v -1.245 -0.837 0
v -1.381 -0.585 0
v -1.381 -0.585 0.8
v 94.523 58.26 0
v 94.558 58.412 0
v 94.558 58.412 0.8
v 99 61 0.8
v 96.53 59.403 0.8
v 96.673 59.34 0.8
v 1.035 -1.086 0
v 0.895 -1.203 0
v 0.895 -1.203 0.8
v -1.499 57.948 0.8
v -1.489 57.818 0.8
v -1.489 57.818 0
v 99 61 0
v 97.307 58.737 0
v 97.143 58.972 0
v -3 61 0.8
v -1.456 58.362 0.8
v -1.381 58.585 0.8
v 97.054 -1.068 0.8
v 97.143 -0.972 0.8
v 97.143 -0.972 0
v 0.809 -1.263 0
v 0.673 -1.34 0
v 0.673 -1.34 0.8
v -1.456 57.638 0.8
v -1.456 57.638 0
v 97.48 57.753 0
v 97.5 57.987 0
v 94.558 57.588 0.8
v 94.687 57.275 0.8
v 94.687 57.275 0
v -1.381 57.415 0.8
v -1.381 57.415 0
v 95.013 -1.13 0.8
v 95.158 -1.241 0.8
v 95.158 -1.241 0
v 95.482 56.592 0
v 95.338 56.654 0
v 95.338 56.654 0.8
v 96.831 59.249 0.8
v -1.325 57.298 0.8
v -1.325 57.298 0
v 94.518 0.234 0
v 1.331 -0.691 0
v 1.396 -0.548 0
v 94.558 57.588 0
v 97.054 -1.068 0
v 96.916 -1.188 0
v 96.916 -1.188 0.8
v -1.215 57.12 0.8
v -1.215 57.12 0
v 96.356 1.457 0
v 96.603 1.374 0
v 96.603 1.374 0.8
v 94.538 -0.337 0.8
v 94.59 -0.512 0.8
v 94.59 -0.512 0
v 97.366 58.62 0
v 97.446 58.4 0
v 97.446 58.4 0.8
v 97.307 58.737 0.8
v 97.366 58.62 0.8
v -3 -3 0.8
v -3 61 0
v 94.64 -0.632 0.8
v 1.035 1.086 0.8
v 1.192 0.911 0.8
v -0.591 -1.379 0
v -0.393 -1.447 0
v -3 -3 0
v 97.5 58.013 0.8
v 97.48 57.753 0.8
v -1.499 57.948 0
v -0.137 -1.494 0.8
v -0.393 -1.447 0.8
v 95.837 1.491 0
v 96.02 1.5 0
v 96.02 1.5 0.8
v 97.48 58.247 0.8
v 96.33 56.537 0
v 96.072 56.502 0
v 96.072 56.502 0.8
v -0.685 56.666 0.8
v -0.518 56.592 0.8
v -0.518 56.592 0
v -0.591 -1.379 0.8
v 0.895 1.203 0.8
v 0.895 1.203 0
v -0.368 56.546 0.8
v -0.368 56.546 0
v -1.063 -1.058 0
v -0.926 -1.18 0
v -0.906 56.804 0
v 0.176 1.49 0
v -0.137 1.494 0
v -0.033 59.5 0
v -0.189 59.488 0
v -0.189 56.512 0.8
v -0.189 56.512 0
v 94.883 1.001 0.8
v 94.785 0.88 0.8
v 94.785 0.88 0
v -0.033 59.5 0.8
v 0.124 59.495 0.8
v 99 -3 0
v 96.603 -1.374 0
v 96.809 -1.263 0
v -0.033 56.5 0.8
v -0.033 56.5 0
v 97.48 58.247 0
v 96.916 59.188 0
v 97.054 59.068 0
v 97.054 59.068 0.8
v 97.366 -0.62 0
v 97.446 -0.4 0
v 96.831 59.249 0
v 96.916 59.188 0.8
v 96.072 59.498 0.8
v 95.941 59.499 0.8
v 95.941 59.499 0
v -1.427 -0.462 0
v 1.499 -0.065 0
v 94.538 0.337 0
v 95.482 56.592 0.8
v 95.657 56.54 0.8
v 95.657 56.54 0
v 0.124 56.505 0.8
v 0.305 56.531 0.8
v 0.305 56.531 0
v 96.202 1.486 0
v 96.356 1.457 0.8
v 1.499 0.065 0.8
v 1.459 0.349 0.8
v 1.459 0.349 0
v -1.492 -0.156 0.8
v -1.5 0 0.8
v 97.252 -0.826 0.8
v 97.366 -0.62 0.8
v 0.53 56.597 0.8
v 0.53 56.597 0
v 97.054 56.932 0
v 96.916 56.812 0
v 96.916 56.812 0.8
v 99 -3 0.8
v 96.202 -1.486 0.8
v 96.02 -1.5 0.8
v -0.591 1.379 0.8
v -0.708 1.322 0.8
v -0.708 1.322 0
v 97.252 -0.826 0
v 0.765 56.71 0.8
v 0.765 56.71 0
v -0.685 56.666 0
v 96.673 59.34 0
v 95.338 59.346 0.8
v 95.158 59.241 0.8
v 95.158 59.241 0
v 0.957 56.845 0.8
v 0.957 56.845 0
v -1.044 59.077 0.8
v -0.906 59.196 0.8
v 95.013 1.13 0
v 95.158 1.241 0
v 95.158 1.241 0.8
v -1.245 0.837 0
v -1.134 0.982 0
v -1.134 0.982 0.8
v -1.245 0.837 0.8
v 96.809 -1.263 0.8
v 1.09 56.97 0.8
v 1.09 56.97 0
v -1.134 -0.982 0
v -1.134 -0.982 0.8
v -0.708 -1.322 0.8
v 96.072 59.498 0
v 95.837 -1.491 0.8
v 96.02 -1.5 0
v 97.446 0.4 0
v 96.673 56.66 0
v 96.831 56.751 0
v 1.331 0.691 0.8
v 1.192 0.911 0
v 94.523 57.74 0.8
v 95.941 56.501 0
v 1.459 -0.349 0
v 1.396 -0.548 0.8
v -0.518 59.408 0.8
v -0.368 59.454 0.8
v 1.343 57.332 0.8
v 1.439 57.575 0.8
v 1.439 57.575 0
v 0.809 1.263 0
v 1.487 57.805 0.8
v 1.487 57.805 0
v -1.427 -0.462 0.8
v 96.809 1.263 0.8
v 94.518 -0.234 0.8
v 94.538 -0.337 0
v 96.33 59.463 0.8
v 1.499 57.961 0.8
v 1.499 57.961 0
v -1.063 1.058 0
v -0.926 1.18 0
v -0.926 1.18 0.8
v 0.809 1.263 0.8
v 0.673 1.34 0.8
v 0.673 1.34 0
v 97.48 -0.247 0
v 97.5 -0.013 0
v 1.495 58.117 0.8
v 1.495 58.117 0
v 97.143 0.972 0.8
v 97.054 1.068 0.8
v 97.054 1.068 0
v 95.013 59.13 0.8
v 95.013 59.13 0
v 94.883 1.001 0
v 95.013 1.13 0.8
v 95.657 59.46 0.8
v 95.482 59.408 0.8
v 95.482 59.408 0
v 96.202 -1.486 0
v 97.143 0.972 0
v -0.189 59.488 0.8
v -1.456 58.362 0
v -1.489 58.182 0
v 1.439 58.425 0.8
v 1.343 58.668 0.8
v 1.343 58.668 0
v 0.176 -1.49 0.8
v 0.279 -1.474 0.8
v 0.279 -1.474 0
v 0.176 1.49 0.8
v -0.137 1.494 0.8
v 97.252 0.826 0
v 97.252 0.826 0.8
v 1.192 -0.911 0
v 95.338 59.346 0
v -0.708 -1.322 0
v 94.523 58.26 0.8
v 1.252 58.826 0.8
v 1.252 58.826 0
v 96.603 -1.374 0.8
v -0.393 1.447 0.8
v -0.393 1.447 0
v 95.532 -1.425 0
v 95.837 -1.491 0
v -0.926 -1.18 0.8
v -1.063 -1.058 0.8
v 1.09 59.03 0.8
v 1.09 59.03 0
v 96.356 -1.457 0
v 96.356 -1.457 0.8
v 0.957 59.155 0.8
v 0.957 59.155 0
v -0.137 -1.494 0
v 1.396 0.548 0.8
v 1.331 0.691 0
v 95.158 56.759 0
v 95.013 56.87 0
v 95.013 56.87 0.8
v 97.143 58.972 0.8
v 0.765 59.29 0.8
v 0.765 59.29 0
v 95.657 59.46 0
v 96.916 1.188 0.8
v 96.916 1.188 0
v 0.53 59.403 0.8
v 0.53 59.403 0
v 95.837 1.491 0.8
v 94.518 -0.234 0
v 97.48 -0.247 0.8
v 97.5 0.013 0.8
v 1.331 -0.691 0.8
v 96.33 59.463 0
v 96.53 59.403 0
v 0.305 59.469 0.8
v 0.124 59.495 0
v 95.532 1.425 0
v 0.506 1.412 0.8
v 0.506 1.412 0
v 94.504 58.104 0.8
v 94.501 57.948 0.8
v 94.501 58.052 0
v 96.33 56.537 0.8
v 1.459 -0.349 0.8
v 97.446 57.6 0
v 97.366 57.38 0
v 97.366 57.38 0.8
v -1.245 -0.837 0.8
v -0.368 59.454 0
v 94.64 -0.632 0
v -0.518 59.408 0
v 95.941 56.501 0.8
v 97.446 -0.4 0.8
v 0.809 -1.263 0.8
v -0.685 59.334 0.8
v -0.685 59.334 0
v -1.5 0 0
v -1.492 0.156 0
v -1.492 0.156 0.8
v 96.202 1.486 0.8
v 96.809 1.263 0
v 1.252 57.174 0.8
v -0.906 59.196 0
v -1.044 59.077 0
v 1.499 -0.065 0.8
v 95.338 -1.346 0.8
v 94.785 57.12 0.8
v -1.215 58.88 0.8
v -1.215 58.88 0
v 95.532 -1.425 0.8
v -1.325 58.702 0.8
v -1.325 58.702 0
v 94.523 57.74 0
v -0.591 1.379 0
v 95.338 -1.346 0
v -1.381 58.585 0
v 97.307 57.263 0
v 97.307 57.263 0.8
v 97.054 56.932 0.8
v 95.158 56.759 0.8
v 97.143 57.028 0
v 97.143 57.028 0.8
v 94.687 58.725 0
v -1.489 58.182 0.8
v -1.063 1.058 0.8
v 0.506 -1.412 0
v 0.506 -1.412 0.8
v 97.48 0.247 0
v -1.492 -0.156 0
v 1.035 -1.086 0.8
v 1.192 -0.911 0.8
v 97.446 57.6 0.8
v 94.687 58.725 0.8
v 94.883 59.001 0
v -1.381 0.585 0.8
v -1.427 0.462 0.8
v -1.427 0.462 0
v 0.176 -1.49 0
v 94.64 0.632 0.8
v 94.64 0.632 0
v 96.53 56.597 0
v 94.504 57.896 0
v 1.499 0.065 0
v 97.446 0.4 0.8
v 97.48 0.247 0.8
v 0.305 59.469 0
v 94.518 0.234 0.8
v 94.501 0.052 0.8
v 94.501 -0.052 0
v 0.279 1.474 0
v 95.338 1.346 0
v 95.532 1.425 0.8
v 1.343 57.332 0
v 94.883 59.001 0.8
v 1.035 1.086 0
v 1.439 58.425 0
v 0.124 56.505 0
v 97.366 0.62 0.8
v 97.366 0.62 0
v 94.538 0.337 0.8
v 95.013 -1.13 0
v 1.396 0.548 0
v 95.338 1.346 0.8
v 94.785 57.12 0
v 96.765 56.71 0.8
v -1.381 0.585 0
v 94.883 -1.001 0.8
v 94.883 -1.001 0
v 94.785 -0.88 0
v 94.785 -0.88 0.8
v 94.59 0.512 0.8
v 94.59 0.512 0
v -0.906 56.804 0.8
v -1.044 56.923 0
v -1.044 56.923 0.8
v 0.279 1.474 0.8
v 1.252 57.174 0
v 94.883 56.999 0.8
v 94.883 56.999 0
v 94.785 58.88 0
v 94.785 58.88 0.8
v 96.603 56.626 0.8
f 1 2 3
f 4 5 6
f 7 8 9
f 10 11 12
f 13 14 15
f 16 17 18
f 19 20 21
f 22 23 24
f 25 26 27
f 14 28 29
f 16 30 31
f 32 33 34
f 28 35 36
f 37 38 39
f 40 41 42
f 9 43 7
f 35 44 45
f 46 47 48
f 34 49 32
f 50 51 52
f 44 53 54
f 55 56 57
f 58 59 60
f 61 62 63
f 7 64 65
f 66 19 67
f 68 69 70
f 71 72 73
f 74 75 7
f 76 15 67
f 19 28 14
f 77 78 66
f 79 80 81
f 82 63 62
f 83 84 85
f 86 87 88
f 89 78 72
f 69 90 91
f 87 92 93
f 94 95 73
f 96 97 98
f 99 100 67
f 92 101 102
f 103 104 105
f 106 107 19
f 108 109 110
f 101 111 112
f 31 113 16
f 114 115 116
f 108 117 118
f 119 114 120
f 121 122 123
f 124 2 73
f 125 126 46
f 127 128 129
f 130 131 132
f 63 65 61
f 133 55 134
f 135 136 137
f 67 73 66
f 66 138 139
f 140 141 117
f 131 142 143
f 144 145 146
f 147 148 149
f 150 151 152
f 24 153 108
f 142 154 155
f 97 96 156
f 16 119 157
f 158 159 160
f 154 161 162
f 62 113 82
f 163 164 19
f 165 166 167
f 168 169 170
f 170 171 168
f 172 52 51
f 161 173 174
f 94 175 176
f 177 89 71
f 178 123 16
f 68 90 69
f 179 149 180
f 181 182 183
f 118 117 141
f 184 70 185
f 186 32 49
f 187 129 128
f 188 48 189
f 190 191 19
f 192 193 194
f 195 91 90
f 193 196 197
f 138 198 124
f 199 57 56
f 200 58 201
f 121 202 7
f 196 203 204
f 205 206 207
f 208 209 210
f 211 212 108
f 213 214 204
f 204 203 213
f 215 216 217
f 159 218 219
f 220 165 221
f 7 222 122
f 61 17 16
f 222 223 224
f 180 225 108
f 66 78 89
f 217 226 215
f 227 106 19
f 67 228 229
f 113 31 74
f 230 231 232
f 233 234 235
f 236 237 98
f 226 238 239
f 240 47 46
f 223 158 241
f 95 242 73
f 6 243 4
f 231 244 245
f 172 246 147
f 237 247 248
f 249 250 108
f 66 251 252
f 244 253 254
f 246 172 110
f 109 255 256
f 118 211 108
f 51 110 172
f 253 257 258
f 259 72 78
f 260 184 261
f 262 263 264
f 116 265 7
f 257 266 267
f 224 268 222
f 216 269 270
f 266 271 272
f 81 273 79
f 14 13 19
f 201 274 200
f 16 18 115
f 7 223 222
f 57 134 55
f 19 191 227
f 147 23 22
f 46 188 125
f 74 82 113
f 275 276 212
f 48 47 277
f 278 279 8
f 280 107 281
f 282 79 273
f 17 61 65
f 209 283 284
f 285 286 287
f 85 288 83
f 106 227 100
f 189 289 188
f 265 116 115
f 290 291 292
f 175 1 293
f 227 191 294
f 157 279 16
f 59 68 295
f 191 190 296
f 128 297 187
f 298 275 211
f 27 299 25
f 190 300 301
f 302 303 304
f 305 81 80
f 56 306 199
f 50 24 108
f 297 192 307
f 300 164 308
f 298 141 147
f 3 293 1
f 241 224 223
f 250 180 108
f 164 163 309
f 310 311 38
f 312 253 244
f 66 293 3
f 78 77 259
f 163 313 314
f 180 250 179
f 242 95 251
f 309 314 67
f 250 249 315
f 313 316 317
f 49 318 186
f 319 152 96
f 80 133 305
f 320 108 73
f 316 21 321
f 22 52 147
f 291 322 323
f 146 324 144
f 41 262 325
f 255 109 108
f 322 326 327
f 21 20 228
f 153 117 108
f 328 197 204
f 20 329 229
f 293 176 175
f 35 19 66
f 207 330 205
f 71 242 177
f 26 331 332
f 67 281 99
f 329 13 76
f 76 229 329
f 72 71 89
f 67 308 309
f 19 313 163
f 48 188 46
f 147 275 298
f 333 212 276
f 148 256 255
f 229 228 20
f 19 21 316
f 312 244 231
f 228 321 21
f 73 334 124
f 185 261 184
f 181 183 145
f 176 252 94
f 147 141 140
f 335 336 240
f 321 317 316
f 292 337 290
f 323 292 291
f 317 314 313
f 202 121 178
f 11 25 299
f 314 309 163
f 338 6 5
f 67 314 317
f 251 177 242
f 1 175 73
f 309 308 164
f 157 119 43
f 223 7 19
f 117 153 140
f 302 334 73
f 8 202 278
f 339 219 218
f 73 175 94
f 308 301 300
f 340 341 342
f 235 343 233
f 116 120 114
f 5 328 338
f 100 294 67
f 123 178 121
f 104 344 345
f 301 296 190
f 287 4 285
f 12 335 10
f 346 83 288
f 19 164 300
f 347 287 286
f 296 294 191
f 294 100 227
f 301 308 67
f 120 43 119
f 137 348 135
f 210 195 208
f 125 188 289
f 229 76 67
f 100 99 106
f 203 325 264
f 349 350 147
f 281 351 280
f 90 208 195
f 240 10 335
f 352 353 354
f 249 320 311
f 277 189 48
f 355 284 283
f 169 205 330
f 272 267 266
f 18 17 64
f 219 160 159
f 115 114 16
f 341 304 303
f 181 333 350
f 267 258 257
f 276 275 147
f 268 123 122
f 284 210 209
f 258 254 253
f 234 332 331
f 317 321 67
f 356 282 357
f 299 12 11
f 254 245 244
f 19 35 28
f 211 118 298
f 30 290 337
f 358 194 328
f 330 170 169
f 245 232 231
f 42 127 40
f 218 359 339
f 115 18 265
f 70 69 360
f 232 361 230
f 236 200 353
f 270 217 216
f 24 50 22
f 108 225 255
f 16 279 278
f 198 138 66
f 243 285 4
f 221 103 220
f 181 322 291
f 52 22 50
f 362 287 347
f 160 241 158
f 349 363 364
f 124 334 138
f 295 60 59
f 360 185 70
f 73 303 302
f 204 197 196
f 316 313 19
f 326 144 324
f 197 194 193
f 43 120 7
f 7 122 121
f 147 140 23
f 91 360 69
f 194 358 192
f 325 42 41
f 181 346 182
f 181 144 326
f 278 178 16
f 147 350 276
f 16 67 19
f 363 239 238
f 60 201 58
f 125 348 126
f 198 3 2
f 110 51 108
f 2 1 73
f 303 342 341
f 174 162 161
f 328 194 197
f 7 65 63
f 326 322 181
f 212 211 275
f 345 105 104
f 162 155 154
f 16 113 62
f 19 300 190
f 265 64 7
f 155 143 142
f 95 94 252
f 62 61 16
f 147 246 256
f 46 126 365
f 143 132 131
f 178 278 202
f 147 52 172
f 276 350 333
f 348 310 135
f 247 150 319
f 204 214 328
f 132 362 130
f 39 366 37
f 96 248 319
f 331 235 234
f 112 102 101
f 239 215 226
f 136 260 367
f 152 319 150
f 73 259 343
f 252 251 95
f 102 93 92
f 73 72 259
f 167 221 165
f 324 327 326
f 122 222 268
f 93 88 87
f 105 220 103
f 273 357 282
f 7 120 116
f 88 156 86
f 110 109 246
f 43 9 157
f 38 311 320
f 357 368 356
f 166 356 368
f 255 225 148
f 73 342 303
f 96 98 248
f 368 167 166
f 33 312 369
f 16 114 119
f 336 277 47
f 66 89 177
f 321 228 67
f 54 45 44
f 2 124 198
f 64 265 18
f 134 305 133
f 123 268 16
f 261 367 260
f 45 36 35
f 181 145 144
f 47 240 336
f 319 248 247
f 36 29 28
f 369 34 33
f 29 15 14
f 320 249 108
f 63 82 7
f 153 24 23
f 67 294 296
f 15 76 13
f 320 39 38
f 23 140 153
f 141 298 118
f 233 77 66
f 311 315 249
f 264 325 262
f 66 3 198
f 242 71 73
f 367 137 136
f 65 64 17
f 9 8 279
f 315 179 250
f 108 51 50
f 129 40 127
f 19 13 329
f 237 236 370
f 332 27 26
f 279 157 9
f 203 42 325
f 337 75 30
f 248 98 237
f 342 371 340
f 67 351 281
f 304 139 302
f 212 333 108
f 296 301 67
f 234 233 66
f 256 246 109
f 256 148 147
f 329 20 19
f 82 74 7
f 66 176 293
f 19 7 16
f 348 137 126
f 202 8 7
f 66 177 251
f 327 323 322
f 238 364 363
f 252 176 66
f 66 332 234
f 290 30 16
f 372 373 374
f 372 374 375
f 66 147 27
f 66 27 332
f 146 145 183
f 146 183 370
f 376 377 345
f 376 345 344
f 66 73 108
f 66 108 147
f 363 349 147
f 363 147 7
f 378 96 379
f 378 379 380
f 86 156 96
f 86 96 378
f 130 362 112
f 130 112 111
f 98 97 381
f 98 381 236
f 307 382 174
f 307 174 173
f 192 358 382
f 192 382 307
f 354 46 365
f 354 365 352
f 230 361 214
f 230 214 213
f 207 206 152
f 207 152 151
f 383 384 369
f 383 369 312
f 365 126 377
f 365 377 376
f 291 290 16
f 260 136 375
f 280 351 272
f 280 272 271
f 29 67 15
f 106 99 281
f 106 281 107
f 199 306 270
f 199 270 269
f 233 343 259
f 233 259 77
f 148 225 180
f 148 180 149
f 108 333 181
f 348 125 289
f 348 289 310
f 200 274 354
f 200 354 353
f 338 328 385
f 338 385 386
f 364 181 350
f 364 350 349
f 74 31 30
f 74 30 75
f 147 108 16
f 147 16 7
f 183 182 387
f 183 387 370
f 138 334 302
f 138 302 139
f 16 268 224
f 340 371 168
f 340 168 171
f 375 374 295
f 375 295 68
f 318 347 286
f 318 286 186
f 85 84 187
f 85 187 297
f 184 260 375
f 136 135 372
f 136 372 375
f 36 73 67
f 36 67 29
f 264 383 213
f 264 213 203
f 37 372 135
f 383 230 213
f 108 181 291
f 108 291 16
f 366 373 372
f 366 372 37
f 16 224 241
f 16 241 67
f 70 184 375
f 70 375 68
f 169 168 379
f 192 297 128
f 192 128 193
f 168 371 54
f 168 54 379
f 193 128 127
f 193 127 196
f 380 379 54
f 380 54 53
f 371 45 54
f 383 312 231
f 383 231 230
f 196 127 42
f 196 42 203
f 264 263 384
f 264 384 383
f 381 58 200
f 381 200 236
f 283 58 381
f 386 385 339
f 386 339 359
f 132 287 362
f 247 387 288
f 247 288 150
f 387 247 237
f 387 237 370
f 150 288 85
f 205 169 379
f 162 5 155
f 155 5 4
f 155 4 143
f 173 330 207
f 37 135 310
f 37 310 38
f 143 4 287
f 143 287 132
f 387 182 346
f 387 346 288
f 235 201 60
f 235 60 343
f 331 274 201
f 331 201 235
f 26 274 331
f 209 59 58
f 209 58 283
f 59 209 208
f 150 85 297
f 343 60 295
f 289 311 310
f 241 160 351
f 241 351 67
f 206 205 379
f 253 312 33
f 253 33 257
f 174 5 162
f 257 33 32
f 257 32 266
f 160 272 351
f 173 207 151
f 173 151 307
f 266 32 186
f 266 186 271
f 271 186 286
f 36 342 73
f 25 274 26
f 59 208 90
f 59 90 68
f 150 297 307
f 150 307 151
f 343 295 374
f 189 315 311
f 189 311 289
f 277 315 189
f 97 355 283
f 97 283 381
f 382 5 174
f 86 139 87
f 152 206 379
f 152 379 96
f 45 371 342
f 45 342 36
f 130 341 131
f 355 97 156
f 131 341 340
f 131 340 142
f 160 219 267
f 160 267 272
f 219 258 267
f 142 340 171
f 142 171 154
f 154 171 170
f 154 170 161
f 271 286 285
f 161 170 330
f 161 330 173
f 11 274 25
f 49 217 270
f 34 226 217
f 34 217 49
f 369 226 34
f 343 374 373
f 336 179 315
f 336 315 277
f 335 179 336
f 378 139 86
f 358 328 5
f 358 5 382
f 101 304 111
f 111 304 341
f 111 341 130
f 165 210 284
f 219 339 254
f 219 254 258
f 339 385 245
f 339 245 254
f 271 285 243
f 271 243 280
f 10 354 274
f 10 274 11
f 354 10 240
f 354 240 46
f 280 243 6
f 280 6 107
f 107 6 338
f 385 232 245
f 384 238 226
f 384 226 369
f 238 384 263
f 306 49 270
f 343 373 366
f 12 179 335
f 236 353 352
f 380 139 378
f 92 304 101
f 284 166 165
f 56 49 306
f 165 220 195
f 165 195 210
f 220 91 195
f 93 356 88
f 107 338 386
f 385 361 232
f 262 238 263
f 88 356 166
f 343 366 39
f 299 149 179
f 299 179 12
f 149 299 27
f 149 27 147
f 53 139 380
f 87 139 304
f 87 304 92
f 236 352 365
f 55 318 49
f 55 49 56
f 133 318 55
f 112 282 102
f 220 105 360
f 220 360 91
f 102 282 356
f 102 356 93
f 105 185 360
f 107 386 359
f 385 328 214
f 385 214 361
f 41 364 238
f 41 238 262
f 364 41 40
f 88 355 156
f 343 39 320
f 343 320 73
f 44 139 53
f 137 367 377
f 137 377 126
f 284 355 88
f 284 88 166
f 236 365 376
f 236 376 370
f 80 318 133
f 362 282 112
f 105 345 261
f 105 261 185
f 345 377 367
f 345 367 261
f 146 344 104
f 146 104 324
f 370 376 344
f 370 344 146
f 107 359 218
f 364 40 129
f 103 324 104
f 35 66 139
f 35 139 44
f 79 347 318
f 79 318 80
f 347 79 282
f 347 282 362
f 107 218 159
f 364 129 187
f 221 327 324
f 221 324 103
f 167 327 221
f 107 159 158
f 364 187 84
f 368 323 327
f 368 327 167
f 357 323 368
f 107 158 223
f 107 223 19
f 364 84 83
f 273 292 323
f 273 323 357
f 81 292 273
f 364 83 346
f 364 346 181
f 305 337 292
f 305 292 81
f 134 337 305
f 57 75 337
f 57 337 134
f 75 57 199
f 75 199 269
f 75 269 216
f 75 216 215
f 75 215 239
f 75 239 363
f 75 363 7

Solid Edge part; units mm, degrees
sketch "Sketch1" plane through (0, 0, 0) normal (0, 0, 1) x (1, 0, 0)
  circle A0 centre (0, 58) radius 1.5
  circle A1 centre (96, 58) radius 1.5
  circle A2 centre (96, 0) radius 1.5
  line L0 (-3, -3) -> (-3, 61)
  line L1 (-3, 61) -> (99, 61)
  line L2 (99, 61) -> (99, -3)
  line L3 (99, -3) -> (-3, -3)
  circle A3 centre (0, 0) radius 1.5
  dimension "D1" = 96
  dimension "D2" = 58
extrude "Protrusion1" add sketch "Sketch1" along normal blind 0.8
properties material "Epoxy, cast rigid"
